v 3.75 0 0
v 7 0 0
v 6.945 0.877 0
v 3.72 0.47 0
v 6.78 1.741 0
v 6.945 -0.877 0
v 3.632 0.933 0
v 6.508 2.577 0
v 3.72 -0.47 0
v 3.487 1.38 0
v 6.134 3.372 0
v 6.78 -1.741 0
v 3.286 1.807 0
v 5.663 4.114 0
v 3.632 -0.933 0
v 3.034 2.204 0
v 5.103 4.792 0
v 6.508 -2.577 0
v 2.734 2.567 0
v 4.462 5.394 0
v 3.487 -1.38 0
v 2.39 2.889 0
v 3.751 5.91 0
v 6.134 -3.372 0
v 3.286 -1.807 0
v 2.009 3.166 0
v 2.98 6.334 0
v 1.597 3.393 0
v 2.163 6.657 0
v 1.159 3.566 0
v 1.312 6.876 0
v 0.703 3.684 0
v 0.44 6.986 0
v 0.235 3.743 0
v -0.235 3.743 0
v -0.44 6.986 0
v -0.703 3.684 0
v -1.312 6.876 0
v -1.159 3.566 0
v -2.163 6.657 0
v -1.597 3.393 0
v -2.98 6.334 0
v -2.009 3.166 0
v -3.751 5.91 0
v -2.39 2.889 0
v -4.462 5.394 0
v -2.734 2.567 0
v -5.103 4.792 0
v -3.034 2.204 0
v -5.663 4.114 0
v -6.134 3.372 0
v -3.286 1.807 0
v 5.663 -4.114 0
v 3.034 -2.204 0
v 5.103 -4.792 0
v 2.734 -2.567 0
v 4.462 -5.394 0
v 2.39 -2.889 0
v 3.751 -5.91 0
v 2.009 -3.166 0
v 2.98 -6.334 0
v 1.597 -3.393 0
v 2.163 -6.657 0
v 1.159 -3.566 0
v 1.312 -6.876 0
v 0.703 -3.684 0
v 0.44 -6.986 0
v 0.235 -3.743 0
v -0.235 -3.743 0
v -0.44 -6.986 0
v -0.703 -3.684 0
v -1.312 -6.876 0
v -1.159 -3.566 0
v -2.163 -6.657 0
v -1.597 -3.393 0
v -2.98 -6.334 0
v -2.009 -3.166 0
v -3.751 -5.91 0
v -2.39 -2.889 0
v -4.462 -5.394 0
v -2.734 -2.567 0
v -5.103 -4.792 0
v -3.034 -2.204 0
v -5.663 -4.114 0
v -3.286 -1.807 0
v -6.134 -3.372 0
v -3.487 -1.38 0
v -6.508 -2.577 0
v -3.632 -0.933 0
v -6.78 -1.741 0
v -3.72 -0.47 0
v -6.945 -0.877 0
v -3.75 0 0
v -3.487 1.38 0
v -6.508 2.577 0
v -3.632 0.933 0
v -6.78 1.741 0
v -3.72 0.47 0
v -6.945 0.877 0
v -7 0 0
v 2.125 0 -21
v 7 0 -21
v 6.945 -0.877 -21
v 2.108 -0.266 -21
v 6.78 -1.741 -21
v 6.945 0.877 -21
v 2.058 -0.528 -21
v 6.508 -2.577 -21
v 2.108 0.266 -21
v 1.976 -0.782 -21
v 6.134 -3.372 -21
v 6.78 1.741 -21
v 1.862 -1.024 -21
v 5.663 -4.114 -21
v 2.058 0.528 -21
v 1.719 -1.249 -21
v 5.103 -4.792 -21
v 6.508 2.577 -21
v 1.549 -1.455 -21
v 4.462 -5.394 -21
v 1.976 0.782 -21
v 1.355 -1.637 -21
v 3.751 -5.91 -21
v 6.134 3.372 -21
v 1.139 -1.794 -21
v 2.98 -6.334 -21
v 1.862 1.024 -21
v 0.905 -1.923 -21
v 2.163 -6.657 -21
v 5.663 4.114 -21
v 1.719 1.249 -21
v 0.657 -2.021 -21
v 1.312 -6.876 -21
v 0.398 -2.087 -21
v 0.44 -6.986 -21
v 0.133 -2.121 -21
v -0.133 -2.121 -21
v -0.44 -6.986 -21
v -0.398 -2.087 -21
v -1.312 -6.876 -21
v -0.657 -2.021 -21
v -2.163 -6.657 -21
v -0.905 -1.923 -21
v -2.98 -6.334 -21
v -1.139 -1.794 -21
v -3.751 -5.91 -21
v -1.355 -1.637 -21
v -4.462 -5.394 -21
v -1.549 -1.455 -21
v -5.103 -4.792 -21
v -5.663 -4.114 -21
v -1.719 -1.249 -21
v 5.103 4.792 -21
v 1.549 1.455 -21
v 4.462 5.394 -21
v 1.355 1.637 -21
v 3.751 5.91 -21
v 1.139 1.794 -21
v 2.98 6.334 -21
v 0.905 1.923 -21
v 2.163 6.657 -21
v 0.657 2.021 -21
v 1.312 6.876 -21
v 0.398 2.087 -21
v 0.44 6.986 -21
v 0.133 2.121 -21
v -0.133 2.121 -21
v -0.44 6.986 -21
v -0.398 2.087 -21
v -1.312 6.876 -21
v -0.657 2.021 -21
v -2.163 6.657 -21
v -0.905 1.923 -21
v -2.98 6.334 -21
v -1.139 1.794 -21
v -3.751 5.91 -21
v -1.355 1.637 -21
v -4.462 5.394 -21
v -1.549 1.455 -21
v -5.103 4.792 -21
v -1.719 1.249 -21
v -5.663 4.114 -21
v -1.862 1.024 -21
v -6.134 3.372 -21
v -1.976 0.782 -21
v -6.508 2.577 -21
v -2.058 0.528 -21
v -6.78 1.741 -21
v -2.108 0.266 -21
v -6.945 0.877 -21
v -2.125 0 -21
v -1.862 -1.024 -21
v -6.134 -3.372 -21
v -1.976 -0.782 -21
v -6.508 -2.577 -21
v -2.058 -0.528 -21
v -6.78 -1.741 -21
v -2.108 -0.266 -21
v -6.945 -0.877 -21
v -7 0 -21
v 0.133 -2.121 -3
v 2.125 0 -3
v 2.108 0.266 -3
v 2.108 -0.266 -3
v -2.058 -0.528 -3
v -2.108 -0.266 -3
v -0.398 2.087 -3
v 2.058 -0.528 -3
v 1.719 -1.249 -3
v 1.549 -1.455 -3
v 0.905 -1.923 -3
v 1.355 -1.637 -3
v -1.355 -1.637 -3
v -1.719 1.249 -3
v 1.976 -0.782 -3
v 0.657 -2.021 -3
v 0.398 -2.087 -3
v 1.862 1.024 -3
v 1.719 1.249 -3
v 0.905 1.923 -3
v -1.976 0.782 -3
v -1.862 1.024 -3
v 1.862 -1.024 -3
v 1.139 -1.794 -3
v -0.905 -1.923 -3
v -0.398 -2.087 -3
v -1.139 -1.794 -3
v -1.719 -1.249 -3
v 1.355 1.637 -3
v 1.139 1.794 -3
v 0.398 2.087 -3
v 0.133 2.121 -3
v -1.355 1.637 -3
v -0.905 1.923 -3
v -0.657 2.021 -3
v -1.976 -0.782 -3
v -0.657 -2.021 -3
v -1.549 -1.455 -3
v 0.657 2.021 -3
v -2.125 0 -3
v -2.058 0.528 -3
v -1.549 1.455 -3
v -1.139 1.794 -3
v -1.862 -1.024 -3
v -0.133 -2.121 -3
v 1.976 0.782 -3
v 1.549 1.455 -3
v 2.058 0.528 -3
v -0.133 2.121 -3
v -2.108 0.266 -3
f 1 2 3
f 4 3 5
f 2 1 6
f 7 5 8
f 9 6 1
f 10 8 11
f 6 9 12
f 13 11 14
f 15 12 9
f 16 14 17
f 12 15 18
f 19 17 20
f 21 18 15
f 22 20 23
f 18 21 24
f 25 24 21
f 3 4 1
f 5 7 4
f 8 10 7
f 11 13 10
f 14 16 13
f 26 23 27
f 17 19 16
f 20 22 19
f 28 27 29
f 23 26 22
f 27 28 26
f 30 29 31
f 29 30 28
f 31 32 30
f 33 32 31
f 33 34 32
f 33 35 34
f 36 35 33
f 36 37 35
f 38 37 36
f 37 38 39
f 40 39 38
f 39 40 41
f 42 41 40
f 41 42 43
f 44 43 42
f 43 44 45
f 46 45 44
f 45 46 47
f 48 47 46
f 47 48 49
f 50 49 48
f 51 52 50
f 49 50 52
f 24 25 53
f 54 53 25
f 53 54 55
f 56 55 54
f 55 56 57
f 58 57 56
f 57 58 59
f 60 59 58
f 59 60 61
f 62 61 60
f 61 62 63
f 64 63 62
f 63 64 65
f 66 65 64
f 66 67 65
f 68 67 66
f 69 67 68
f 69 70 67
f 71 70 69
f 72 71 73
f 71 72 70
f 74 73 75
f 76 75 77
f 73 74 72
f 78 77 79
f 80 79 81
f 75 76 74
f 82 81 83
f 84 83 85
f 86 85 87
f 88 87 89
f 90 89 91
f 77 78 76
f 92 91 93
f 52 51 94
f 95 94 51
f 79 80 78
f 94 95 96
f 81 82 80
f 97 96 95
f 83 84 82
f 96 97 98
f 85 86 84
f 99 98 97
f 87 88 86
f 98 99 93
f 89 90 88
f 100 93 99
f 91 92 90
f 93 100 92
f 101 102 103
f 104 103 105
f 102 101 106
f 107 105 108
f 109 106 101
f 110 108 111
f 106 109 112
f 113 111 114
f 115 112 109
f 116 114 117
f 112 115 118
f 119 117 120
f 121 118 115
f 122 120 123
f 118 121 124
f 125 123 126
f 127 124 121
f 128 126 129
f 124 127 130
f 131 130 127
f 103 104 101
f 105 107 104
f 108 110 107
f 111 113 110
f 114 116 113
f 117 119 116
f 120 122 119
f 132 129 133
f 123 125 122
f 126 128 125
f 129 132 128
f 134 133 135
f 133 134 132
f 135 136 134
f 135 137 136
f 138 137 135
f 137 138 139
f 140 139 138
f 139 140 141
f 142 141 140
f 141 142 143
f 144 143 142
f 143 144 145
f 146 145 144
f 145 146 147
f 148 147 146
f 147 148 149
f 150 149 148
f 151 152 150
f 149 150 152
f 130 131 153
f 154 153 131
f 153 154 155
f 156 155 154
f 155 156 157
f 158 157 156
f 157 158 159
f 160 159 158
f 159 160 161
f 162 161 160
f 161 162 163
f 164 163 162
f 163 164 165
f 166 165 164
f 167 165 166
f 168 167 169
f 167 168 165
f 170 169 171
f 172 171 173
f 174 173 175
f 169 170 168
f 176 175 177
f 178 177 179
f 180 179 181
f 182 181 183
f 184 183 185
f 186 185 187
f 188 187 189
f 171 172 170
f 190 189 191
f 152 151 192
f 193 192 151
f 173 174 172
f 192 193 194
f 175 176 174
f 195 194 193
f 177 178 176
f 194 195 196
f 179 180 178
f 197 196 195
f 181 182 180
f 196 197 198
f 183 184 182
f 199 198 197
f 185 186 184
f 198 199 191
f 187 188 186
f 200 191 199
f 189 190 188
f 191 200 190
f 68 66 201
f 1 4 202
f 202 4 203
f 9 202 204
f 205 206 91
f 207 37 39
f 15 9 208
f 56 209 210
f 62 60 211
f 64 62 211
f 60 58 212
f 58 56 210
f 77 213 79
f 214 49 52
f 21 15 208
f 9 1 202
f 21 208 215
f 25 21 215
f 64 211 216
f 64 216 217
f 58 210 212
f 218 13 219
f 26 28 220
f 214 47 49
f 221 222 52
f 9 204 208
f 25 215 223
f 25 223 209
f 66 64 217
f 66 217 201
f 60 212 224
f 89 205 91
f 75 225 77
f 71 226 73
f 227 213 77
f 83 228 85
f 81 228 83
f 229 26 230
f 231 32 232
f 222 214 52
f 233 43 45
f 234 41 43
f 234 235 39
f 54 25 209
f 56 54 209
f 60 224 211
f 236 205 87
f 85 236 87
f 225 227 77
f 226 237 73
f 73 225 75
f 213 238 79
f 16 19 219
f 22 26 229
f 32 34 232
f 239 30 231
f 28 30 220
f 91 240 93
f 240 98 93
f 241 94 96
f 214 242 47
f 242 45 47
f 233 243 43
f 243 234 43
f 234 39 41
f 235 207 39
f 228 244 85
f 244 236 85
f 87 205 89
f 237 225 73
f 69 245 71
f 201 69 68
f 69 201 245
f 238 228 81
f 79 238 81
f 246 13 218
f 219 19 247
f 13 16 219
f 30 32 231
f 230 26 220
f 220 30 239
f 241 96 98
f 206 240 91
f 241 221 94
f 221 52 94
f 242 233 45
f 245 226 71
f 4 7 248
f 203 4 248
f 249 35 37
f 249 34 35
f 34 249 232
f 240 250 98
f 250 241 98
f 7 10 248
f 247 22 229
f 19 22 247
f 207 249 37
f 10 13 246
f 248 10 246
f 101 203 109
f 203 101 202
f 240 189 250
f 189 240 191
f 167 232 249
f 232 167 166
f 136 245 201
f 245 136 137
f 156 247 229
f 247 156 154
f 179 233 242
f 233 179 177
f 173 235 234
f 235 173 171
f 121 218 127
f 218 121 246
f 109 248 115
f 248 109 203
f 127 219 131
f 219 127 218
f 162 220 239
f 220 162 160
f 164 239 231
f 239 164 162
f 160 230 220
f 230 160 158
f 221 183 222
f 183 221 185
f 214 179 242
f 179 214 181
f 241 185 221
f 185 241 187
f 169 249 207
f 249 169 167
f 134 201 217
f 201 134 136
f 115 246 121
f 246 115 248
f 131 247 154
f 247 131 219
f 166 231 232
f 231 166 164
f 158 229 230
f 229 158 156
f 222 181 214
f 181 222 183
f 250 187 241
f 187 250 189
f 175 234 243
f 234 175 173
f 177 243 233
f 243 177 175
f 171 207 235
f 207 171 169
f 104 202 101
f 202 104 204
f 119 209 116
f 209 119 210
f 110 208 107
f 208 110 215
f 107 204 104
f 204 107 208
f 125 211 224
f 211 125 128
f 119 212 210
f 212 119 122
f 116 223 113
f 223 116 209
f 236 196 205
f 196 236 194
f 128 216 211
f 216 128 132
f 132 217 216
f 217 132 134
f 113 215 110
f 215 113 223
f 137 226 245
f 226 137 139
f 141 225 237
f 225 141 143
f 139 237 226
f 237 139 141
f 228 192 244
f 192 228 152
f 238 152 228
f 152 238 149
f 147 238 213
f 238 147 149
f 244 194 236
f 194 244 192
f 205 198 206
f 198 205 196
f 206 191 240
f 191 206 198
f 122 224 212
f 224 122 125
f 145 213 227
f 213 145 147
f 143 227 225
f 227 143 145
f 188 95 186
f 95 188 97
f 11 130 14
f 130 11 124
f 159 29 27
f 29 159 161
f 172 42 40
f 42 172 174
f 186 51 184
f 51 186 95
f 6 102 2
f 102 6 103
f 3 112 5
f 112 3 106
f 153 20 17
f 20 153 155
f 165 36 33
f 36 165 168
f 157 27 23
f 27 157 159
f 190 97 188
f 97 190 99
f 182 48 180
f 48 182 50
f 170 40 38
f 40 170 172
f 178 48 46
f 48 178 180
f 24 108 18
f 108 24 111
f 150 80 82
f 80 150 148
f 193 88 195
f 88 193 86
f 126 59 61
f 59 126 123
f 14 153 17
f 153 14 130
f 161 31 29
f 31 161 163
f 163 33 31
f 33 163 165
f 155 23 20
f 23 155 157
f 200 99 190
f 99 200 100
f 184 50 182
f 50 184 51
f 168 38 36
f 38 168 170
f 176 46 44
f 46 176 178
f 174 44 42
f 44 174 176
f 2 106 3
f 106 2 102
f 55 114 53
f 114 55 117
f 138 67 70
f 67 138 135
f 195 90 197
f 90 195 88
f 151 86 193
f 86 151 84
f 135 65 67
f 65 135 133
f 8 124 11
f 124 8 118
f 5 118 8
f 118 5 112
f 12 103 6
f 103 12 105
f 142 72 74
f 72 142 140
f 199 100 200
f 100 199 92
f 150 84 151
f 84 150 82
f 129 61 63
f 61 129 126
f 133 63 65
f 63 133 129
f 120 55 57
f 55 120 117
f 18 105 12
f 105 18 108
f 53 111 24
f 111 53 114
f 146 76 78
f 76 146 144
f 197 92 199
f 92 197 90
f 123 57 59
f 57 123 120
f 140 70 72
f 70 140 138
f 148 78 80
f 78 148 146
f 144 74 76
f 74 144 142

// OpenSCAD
$fn = 50;


difference() {
	union() {
		translate(v = [0, 0, -21.0000000000]) {
			cylinder(h = 21, r = 7.0000000000);
		}
		cylinder(h = 0, r = 13.0000000000);
	}
	union() {
		translate(v = [0, 0, 0]) {
			rotate(a = [0, 0, 0]) {
				difference() {
					union() {
						#translate(v = [0, 0, -21.0000000000]) {
							cylinder(h = 21, r = 2.0000000000);
						}
						#translate(v = [0, 0, -3]) {
							cylinder(h = 3, r = 7.0000000000, r1 = 2.1250000000, r2 = 3.7500000000);
						}
						#translate(v = [0, 0, -21.0000000000]) {
							cylinder(h = 21, r = 2.1250000000);
						}
						#translate(v = [0, 0, -21.0000000000]) {
							cylinder(h = 21, r = 2.0000000000);
						}
					}
					union();
				}
			}
		}
	}
}
